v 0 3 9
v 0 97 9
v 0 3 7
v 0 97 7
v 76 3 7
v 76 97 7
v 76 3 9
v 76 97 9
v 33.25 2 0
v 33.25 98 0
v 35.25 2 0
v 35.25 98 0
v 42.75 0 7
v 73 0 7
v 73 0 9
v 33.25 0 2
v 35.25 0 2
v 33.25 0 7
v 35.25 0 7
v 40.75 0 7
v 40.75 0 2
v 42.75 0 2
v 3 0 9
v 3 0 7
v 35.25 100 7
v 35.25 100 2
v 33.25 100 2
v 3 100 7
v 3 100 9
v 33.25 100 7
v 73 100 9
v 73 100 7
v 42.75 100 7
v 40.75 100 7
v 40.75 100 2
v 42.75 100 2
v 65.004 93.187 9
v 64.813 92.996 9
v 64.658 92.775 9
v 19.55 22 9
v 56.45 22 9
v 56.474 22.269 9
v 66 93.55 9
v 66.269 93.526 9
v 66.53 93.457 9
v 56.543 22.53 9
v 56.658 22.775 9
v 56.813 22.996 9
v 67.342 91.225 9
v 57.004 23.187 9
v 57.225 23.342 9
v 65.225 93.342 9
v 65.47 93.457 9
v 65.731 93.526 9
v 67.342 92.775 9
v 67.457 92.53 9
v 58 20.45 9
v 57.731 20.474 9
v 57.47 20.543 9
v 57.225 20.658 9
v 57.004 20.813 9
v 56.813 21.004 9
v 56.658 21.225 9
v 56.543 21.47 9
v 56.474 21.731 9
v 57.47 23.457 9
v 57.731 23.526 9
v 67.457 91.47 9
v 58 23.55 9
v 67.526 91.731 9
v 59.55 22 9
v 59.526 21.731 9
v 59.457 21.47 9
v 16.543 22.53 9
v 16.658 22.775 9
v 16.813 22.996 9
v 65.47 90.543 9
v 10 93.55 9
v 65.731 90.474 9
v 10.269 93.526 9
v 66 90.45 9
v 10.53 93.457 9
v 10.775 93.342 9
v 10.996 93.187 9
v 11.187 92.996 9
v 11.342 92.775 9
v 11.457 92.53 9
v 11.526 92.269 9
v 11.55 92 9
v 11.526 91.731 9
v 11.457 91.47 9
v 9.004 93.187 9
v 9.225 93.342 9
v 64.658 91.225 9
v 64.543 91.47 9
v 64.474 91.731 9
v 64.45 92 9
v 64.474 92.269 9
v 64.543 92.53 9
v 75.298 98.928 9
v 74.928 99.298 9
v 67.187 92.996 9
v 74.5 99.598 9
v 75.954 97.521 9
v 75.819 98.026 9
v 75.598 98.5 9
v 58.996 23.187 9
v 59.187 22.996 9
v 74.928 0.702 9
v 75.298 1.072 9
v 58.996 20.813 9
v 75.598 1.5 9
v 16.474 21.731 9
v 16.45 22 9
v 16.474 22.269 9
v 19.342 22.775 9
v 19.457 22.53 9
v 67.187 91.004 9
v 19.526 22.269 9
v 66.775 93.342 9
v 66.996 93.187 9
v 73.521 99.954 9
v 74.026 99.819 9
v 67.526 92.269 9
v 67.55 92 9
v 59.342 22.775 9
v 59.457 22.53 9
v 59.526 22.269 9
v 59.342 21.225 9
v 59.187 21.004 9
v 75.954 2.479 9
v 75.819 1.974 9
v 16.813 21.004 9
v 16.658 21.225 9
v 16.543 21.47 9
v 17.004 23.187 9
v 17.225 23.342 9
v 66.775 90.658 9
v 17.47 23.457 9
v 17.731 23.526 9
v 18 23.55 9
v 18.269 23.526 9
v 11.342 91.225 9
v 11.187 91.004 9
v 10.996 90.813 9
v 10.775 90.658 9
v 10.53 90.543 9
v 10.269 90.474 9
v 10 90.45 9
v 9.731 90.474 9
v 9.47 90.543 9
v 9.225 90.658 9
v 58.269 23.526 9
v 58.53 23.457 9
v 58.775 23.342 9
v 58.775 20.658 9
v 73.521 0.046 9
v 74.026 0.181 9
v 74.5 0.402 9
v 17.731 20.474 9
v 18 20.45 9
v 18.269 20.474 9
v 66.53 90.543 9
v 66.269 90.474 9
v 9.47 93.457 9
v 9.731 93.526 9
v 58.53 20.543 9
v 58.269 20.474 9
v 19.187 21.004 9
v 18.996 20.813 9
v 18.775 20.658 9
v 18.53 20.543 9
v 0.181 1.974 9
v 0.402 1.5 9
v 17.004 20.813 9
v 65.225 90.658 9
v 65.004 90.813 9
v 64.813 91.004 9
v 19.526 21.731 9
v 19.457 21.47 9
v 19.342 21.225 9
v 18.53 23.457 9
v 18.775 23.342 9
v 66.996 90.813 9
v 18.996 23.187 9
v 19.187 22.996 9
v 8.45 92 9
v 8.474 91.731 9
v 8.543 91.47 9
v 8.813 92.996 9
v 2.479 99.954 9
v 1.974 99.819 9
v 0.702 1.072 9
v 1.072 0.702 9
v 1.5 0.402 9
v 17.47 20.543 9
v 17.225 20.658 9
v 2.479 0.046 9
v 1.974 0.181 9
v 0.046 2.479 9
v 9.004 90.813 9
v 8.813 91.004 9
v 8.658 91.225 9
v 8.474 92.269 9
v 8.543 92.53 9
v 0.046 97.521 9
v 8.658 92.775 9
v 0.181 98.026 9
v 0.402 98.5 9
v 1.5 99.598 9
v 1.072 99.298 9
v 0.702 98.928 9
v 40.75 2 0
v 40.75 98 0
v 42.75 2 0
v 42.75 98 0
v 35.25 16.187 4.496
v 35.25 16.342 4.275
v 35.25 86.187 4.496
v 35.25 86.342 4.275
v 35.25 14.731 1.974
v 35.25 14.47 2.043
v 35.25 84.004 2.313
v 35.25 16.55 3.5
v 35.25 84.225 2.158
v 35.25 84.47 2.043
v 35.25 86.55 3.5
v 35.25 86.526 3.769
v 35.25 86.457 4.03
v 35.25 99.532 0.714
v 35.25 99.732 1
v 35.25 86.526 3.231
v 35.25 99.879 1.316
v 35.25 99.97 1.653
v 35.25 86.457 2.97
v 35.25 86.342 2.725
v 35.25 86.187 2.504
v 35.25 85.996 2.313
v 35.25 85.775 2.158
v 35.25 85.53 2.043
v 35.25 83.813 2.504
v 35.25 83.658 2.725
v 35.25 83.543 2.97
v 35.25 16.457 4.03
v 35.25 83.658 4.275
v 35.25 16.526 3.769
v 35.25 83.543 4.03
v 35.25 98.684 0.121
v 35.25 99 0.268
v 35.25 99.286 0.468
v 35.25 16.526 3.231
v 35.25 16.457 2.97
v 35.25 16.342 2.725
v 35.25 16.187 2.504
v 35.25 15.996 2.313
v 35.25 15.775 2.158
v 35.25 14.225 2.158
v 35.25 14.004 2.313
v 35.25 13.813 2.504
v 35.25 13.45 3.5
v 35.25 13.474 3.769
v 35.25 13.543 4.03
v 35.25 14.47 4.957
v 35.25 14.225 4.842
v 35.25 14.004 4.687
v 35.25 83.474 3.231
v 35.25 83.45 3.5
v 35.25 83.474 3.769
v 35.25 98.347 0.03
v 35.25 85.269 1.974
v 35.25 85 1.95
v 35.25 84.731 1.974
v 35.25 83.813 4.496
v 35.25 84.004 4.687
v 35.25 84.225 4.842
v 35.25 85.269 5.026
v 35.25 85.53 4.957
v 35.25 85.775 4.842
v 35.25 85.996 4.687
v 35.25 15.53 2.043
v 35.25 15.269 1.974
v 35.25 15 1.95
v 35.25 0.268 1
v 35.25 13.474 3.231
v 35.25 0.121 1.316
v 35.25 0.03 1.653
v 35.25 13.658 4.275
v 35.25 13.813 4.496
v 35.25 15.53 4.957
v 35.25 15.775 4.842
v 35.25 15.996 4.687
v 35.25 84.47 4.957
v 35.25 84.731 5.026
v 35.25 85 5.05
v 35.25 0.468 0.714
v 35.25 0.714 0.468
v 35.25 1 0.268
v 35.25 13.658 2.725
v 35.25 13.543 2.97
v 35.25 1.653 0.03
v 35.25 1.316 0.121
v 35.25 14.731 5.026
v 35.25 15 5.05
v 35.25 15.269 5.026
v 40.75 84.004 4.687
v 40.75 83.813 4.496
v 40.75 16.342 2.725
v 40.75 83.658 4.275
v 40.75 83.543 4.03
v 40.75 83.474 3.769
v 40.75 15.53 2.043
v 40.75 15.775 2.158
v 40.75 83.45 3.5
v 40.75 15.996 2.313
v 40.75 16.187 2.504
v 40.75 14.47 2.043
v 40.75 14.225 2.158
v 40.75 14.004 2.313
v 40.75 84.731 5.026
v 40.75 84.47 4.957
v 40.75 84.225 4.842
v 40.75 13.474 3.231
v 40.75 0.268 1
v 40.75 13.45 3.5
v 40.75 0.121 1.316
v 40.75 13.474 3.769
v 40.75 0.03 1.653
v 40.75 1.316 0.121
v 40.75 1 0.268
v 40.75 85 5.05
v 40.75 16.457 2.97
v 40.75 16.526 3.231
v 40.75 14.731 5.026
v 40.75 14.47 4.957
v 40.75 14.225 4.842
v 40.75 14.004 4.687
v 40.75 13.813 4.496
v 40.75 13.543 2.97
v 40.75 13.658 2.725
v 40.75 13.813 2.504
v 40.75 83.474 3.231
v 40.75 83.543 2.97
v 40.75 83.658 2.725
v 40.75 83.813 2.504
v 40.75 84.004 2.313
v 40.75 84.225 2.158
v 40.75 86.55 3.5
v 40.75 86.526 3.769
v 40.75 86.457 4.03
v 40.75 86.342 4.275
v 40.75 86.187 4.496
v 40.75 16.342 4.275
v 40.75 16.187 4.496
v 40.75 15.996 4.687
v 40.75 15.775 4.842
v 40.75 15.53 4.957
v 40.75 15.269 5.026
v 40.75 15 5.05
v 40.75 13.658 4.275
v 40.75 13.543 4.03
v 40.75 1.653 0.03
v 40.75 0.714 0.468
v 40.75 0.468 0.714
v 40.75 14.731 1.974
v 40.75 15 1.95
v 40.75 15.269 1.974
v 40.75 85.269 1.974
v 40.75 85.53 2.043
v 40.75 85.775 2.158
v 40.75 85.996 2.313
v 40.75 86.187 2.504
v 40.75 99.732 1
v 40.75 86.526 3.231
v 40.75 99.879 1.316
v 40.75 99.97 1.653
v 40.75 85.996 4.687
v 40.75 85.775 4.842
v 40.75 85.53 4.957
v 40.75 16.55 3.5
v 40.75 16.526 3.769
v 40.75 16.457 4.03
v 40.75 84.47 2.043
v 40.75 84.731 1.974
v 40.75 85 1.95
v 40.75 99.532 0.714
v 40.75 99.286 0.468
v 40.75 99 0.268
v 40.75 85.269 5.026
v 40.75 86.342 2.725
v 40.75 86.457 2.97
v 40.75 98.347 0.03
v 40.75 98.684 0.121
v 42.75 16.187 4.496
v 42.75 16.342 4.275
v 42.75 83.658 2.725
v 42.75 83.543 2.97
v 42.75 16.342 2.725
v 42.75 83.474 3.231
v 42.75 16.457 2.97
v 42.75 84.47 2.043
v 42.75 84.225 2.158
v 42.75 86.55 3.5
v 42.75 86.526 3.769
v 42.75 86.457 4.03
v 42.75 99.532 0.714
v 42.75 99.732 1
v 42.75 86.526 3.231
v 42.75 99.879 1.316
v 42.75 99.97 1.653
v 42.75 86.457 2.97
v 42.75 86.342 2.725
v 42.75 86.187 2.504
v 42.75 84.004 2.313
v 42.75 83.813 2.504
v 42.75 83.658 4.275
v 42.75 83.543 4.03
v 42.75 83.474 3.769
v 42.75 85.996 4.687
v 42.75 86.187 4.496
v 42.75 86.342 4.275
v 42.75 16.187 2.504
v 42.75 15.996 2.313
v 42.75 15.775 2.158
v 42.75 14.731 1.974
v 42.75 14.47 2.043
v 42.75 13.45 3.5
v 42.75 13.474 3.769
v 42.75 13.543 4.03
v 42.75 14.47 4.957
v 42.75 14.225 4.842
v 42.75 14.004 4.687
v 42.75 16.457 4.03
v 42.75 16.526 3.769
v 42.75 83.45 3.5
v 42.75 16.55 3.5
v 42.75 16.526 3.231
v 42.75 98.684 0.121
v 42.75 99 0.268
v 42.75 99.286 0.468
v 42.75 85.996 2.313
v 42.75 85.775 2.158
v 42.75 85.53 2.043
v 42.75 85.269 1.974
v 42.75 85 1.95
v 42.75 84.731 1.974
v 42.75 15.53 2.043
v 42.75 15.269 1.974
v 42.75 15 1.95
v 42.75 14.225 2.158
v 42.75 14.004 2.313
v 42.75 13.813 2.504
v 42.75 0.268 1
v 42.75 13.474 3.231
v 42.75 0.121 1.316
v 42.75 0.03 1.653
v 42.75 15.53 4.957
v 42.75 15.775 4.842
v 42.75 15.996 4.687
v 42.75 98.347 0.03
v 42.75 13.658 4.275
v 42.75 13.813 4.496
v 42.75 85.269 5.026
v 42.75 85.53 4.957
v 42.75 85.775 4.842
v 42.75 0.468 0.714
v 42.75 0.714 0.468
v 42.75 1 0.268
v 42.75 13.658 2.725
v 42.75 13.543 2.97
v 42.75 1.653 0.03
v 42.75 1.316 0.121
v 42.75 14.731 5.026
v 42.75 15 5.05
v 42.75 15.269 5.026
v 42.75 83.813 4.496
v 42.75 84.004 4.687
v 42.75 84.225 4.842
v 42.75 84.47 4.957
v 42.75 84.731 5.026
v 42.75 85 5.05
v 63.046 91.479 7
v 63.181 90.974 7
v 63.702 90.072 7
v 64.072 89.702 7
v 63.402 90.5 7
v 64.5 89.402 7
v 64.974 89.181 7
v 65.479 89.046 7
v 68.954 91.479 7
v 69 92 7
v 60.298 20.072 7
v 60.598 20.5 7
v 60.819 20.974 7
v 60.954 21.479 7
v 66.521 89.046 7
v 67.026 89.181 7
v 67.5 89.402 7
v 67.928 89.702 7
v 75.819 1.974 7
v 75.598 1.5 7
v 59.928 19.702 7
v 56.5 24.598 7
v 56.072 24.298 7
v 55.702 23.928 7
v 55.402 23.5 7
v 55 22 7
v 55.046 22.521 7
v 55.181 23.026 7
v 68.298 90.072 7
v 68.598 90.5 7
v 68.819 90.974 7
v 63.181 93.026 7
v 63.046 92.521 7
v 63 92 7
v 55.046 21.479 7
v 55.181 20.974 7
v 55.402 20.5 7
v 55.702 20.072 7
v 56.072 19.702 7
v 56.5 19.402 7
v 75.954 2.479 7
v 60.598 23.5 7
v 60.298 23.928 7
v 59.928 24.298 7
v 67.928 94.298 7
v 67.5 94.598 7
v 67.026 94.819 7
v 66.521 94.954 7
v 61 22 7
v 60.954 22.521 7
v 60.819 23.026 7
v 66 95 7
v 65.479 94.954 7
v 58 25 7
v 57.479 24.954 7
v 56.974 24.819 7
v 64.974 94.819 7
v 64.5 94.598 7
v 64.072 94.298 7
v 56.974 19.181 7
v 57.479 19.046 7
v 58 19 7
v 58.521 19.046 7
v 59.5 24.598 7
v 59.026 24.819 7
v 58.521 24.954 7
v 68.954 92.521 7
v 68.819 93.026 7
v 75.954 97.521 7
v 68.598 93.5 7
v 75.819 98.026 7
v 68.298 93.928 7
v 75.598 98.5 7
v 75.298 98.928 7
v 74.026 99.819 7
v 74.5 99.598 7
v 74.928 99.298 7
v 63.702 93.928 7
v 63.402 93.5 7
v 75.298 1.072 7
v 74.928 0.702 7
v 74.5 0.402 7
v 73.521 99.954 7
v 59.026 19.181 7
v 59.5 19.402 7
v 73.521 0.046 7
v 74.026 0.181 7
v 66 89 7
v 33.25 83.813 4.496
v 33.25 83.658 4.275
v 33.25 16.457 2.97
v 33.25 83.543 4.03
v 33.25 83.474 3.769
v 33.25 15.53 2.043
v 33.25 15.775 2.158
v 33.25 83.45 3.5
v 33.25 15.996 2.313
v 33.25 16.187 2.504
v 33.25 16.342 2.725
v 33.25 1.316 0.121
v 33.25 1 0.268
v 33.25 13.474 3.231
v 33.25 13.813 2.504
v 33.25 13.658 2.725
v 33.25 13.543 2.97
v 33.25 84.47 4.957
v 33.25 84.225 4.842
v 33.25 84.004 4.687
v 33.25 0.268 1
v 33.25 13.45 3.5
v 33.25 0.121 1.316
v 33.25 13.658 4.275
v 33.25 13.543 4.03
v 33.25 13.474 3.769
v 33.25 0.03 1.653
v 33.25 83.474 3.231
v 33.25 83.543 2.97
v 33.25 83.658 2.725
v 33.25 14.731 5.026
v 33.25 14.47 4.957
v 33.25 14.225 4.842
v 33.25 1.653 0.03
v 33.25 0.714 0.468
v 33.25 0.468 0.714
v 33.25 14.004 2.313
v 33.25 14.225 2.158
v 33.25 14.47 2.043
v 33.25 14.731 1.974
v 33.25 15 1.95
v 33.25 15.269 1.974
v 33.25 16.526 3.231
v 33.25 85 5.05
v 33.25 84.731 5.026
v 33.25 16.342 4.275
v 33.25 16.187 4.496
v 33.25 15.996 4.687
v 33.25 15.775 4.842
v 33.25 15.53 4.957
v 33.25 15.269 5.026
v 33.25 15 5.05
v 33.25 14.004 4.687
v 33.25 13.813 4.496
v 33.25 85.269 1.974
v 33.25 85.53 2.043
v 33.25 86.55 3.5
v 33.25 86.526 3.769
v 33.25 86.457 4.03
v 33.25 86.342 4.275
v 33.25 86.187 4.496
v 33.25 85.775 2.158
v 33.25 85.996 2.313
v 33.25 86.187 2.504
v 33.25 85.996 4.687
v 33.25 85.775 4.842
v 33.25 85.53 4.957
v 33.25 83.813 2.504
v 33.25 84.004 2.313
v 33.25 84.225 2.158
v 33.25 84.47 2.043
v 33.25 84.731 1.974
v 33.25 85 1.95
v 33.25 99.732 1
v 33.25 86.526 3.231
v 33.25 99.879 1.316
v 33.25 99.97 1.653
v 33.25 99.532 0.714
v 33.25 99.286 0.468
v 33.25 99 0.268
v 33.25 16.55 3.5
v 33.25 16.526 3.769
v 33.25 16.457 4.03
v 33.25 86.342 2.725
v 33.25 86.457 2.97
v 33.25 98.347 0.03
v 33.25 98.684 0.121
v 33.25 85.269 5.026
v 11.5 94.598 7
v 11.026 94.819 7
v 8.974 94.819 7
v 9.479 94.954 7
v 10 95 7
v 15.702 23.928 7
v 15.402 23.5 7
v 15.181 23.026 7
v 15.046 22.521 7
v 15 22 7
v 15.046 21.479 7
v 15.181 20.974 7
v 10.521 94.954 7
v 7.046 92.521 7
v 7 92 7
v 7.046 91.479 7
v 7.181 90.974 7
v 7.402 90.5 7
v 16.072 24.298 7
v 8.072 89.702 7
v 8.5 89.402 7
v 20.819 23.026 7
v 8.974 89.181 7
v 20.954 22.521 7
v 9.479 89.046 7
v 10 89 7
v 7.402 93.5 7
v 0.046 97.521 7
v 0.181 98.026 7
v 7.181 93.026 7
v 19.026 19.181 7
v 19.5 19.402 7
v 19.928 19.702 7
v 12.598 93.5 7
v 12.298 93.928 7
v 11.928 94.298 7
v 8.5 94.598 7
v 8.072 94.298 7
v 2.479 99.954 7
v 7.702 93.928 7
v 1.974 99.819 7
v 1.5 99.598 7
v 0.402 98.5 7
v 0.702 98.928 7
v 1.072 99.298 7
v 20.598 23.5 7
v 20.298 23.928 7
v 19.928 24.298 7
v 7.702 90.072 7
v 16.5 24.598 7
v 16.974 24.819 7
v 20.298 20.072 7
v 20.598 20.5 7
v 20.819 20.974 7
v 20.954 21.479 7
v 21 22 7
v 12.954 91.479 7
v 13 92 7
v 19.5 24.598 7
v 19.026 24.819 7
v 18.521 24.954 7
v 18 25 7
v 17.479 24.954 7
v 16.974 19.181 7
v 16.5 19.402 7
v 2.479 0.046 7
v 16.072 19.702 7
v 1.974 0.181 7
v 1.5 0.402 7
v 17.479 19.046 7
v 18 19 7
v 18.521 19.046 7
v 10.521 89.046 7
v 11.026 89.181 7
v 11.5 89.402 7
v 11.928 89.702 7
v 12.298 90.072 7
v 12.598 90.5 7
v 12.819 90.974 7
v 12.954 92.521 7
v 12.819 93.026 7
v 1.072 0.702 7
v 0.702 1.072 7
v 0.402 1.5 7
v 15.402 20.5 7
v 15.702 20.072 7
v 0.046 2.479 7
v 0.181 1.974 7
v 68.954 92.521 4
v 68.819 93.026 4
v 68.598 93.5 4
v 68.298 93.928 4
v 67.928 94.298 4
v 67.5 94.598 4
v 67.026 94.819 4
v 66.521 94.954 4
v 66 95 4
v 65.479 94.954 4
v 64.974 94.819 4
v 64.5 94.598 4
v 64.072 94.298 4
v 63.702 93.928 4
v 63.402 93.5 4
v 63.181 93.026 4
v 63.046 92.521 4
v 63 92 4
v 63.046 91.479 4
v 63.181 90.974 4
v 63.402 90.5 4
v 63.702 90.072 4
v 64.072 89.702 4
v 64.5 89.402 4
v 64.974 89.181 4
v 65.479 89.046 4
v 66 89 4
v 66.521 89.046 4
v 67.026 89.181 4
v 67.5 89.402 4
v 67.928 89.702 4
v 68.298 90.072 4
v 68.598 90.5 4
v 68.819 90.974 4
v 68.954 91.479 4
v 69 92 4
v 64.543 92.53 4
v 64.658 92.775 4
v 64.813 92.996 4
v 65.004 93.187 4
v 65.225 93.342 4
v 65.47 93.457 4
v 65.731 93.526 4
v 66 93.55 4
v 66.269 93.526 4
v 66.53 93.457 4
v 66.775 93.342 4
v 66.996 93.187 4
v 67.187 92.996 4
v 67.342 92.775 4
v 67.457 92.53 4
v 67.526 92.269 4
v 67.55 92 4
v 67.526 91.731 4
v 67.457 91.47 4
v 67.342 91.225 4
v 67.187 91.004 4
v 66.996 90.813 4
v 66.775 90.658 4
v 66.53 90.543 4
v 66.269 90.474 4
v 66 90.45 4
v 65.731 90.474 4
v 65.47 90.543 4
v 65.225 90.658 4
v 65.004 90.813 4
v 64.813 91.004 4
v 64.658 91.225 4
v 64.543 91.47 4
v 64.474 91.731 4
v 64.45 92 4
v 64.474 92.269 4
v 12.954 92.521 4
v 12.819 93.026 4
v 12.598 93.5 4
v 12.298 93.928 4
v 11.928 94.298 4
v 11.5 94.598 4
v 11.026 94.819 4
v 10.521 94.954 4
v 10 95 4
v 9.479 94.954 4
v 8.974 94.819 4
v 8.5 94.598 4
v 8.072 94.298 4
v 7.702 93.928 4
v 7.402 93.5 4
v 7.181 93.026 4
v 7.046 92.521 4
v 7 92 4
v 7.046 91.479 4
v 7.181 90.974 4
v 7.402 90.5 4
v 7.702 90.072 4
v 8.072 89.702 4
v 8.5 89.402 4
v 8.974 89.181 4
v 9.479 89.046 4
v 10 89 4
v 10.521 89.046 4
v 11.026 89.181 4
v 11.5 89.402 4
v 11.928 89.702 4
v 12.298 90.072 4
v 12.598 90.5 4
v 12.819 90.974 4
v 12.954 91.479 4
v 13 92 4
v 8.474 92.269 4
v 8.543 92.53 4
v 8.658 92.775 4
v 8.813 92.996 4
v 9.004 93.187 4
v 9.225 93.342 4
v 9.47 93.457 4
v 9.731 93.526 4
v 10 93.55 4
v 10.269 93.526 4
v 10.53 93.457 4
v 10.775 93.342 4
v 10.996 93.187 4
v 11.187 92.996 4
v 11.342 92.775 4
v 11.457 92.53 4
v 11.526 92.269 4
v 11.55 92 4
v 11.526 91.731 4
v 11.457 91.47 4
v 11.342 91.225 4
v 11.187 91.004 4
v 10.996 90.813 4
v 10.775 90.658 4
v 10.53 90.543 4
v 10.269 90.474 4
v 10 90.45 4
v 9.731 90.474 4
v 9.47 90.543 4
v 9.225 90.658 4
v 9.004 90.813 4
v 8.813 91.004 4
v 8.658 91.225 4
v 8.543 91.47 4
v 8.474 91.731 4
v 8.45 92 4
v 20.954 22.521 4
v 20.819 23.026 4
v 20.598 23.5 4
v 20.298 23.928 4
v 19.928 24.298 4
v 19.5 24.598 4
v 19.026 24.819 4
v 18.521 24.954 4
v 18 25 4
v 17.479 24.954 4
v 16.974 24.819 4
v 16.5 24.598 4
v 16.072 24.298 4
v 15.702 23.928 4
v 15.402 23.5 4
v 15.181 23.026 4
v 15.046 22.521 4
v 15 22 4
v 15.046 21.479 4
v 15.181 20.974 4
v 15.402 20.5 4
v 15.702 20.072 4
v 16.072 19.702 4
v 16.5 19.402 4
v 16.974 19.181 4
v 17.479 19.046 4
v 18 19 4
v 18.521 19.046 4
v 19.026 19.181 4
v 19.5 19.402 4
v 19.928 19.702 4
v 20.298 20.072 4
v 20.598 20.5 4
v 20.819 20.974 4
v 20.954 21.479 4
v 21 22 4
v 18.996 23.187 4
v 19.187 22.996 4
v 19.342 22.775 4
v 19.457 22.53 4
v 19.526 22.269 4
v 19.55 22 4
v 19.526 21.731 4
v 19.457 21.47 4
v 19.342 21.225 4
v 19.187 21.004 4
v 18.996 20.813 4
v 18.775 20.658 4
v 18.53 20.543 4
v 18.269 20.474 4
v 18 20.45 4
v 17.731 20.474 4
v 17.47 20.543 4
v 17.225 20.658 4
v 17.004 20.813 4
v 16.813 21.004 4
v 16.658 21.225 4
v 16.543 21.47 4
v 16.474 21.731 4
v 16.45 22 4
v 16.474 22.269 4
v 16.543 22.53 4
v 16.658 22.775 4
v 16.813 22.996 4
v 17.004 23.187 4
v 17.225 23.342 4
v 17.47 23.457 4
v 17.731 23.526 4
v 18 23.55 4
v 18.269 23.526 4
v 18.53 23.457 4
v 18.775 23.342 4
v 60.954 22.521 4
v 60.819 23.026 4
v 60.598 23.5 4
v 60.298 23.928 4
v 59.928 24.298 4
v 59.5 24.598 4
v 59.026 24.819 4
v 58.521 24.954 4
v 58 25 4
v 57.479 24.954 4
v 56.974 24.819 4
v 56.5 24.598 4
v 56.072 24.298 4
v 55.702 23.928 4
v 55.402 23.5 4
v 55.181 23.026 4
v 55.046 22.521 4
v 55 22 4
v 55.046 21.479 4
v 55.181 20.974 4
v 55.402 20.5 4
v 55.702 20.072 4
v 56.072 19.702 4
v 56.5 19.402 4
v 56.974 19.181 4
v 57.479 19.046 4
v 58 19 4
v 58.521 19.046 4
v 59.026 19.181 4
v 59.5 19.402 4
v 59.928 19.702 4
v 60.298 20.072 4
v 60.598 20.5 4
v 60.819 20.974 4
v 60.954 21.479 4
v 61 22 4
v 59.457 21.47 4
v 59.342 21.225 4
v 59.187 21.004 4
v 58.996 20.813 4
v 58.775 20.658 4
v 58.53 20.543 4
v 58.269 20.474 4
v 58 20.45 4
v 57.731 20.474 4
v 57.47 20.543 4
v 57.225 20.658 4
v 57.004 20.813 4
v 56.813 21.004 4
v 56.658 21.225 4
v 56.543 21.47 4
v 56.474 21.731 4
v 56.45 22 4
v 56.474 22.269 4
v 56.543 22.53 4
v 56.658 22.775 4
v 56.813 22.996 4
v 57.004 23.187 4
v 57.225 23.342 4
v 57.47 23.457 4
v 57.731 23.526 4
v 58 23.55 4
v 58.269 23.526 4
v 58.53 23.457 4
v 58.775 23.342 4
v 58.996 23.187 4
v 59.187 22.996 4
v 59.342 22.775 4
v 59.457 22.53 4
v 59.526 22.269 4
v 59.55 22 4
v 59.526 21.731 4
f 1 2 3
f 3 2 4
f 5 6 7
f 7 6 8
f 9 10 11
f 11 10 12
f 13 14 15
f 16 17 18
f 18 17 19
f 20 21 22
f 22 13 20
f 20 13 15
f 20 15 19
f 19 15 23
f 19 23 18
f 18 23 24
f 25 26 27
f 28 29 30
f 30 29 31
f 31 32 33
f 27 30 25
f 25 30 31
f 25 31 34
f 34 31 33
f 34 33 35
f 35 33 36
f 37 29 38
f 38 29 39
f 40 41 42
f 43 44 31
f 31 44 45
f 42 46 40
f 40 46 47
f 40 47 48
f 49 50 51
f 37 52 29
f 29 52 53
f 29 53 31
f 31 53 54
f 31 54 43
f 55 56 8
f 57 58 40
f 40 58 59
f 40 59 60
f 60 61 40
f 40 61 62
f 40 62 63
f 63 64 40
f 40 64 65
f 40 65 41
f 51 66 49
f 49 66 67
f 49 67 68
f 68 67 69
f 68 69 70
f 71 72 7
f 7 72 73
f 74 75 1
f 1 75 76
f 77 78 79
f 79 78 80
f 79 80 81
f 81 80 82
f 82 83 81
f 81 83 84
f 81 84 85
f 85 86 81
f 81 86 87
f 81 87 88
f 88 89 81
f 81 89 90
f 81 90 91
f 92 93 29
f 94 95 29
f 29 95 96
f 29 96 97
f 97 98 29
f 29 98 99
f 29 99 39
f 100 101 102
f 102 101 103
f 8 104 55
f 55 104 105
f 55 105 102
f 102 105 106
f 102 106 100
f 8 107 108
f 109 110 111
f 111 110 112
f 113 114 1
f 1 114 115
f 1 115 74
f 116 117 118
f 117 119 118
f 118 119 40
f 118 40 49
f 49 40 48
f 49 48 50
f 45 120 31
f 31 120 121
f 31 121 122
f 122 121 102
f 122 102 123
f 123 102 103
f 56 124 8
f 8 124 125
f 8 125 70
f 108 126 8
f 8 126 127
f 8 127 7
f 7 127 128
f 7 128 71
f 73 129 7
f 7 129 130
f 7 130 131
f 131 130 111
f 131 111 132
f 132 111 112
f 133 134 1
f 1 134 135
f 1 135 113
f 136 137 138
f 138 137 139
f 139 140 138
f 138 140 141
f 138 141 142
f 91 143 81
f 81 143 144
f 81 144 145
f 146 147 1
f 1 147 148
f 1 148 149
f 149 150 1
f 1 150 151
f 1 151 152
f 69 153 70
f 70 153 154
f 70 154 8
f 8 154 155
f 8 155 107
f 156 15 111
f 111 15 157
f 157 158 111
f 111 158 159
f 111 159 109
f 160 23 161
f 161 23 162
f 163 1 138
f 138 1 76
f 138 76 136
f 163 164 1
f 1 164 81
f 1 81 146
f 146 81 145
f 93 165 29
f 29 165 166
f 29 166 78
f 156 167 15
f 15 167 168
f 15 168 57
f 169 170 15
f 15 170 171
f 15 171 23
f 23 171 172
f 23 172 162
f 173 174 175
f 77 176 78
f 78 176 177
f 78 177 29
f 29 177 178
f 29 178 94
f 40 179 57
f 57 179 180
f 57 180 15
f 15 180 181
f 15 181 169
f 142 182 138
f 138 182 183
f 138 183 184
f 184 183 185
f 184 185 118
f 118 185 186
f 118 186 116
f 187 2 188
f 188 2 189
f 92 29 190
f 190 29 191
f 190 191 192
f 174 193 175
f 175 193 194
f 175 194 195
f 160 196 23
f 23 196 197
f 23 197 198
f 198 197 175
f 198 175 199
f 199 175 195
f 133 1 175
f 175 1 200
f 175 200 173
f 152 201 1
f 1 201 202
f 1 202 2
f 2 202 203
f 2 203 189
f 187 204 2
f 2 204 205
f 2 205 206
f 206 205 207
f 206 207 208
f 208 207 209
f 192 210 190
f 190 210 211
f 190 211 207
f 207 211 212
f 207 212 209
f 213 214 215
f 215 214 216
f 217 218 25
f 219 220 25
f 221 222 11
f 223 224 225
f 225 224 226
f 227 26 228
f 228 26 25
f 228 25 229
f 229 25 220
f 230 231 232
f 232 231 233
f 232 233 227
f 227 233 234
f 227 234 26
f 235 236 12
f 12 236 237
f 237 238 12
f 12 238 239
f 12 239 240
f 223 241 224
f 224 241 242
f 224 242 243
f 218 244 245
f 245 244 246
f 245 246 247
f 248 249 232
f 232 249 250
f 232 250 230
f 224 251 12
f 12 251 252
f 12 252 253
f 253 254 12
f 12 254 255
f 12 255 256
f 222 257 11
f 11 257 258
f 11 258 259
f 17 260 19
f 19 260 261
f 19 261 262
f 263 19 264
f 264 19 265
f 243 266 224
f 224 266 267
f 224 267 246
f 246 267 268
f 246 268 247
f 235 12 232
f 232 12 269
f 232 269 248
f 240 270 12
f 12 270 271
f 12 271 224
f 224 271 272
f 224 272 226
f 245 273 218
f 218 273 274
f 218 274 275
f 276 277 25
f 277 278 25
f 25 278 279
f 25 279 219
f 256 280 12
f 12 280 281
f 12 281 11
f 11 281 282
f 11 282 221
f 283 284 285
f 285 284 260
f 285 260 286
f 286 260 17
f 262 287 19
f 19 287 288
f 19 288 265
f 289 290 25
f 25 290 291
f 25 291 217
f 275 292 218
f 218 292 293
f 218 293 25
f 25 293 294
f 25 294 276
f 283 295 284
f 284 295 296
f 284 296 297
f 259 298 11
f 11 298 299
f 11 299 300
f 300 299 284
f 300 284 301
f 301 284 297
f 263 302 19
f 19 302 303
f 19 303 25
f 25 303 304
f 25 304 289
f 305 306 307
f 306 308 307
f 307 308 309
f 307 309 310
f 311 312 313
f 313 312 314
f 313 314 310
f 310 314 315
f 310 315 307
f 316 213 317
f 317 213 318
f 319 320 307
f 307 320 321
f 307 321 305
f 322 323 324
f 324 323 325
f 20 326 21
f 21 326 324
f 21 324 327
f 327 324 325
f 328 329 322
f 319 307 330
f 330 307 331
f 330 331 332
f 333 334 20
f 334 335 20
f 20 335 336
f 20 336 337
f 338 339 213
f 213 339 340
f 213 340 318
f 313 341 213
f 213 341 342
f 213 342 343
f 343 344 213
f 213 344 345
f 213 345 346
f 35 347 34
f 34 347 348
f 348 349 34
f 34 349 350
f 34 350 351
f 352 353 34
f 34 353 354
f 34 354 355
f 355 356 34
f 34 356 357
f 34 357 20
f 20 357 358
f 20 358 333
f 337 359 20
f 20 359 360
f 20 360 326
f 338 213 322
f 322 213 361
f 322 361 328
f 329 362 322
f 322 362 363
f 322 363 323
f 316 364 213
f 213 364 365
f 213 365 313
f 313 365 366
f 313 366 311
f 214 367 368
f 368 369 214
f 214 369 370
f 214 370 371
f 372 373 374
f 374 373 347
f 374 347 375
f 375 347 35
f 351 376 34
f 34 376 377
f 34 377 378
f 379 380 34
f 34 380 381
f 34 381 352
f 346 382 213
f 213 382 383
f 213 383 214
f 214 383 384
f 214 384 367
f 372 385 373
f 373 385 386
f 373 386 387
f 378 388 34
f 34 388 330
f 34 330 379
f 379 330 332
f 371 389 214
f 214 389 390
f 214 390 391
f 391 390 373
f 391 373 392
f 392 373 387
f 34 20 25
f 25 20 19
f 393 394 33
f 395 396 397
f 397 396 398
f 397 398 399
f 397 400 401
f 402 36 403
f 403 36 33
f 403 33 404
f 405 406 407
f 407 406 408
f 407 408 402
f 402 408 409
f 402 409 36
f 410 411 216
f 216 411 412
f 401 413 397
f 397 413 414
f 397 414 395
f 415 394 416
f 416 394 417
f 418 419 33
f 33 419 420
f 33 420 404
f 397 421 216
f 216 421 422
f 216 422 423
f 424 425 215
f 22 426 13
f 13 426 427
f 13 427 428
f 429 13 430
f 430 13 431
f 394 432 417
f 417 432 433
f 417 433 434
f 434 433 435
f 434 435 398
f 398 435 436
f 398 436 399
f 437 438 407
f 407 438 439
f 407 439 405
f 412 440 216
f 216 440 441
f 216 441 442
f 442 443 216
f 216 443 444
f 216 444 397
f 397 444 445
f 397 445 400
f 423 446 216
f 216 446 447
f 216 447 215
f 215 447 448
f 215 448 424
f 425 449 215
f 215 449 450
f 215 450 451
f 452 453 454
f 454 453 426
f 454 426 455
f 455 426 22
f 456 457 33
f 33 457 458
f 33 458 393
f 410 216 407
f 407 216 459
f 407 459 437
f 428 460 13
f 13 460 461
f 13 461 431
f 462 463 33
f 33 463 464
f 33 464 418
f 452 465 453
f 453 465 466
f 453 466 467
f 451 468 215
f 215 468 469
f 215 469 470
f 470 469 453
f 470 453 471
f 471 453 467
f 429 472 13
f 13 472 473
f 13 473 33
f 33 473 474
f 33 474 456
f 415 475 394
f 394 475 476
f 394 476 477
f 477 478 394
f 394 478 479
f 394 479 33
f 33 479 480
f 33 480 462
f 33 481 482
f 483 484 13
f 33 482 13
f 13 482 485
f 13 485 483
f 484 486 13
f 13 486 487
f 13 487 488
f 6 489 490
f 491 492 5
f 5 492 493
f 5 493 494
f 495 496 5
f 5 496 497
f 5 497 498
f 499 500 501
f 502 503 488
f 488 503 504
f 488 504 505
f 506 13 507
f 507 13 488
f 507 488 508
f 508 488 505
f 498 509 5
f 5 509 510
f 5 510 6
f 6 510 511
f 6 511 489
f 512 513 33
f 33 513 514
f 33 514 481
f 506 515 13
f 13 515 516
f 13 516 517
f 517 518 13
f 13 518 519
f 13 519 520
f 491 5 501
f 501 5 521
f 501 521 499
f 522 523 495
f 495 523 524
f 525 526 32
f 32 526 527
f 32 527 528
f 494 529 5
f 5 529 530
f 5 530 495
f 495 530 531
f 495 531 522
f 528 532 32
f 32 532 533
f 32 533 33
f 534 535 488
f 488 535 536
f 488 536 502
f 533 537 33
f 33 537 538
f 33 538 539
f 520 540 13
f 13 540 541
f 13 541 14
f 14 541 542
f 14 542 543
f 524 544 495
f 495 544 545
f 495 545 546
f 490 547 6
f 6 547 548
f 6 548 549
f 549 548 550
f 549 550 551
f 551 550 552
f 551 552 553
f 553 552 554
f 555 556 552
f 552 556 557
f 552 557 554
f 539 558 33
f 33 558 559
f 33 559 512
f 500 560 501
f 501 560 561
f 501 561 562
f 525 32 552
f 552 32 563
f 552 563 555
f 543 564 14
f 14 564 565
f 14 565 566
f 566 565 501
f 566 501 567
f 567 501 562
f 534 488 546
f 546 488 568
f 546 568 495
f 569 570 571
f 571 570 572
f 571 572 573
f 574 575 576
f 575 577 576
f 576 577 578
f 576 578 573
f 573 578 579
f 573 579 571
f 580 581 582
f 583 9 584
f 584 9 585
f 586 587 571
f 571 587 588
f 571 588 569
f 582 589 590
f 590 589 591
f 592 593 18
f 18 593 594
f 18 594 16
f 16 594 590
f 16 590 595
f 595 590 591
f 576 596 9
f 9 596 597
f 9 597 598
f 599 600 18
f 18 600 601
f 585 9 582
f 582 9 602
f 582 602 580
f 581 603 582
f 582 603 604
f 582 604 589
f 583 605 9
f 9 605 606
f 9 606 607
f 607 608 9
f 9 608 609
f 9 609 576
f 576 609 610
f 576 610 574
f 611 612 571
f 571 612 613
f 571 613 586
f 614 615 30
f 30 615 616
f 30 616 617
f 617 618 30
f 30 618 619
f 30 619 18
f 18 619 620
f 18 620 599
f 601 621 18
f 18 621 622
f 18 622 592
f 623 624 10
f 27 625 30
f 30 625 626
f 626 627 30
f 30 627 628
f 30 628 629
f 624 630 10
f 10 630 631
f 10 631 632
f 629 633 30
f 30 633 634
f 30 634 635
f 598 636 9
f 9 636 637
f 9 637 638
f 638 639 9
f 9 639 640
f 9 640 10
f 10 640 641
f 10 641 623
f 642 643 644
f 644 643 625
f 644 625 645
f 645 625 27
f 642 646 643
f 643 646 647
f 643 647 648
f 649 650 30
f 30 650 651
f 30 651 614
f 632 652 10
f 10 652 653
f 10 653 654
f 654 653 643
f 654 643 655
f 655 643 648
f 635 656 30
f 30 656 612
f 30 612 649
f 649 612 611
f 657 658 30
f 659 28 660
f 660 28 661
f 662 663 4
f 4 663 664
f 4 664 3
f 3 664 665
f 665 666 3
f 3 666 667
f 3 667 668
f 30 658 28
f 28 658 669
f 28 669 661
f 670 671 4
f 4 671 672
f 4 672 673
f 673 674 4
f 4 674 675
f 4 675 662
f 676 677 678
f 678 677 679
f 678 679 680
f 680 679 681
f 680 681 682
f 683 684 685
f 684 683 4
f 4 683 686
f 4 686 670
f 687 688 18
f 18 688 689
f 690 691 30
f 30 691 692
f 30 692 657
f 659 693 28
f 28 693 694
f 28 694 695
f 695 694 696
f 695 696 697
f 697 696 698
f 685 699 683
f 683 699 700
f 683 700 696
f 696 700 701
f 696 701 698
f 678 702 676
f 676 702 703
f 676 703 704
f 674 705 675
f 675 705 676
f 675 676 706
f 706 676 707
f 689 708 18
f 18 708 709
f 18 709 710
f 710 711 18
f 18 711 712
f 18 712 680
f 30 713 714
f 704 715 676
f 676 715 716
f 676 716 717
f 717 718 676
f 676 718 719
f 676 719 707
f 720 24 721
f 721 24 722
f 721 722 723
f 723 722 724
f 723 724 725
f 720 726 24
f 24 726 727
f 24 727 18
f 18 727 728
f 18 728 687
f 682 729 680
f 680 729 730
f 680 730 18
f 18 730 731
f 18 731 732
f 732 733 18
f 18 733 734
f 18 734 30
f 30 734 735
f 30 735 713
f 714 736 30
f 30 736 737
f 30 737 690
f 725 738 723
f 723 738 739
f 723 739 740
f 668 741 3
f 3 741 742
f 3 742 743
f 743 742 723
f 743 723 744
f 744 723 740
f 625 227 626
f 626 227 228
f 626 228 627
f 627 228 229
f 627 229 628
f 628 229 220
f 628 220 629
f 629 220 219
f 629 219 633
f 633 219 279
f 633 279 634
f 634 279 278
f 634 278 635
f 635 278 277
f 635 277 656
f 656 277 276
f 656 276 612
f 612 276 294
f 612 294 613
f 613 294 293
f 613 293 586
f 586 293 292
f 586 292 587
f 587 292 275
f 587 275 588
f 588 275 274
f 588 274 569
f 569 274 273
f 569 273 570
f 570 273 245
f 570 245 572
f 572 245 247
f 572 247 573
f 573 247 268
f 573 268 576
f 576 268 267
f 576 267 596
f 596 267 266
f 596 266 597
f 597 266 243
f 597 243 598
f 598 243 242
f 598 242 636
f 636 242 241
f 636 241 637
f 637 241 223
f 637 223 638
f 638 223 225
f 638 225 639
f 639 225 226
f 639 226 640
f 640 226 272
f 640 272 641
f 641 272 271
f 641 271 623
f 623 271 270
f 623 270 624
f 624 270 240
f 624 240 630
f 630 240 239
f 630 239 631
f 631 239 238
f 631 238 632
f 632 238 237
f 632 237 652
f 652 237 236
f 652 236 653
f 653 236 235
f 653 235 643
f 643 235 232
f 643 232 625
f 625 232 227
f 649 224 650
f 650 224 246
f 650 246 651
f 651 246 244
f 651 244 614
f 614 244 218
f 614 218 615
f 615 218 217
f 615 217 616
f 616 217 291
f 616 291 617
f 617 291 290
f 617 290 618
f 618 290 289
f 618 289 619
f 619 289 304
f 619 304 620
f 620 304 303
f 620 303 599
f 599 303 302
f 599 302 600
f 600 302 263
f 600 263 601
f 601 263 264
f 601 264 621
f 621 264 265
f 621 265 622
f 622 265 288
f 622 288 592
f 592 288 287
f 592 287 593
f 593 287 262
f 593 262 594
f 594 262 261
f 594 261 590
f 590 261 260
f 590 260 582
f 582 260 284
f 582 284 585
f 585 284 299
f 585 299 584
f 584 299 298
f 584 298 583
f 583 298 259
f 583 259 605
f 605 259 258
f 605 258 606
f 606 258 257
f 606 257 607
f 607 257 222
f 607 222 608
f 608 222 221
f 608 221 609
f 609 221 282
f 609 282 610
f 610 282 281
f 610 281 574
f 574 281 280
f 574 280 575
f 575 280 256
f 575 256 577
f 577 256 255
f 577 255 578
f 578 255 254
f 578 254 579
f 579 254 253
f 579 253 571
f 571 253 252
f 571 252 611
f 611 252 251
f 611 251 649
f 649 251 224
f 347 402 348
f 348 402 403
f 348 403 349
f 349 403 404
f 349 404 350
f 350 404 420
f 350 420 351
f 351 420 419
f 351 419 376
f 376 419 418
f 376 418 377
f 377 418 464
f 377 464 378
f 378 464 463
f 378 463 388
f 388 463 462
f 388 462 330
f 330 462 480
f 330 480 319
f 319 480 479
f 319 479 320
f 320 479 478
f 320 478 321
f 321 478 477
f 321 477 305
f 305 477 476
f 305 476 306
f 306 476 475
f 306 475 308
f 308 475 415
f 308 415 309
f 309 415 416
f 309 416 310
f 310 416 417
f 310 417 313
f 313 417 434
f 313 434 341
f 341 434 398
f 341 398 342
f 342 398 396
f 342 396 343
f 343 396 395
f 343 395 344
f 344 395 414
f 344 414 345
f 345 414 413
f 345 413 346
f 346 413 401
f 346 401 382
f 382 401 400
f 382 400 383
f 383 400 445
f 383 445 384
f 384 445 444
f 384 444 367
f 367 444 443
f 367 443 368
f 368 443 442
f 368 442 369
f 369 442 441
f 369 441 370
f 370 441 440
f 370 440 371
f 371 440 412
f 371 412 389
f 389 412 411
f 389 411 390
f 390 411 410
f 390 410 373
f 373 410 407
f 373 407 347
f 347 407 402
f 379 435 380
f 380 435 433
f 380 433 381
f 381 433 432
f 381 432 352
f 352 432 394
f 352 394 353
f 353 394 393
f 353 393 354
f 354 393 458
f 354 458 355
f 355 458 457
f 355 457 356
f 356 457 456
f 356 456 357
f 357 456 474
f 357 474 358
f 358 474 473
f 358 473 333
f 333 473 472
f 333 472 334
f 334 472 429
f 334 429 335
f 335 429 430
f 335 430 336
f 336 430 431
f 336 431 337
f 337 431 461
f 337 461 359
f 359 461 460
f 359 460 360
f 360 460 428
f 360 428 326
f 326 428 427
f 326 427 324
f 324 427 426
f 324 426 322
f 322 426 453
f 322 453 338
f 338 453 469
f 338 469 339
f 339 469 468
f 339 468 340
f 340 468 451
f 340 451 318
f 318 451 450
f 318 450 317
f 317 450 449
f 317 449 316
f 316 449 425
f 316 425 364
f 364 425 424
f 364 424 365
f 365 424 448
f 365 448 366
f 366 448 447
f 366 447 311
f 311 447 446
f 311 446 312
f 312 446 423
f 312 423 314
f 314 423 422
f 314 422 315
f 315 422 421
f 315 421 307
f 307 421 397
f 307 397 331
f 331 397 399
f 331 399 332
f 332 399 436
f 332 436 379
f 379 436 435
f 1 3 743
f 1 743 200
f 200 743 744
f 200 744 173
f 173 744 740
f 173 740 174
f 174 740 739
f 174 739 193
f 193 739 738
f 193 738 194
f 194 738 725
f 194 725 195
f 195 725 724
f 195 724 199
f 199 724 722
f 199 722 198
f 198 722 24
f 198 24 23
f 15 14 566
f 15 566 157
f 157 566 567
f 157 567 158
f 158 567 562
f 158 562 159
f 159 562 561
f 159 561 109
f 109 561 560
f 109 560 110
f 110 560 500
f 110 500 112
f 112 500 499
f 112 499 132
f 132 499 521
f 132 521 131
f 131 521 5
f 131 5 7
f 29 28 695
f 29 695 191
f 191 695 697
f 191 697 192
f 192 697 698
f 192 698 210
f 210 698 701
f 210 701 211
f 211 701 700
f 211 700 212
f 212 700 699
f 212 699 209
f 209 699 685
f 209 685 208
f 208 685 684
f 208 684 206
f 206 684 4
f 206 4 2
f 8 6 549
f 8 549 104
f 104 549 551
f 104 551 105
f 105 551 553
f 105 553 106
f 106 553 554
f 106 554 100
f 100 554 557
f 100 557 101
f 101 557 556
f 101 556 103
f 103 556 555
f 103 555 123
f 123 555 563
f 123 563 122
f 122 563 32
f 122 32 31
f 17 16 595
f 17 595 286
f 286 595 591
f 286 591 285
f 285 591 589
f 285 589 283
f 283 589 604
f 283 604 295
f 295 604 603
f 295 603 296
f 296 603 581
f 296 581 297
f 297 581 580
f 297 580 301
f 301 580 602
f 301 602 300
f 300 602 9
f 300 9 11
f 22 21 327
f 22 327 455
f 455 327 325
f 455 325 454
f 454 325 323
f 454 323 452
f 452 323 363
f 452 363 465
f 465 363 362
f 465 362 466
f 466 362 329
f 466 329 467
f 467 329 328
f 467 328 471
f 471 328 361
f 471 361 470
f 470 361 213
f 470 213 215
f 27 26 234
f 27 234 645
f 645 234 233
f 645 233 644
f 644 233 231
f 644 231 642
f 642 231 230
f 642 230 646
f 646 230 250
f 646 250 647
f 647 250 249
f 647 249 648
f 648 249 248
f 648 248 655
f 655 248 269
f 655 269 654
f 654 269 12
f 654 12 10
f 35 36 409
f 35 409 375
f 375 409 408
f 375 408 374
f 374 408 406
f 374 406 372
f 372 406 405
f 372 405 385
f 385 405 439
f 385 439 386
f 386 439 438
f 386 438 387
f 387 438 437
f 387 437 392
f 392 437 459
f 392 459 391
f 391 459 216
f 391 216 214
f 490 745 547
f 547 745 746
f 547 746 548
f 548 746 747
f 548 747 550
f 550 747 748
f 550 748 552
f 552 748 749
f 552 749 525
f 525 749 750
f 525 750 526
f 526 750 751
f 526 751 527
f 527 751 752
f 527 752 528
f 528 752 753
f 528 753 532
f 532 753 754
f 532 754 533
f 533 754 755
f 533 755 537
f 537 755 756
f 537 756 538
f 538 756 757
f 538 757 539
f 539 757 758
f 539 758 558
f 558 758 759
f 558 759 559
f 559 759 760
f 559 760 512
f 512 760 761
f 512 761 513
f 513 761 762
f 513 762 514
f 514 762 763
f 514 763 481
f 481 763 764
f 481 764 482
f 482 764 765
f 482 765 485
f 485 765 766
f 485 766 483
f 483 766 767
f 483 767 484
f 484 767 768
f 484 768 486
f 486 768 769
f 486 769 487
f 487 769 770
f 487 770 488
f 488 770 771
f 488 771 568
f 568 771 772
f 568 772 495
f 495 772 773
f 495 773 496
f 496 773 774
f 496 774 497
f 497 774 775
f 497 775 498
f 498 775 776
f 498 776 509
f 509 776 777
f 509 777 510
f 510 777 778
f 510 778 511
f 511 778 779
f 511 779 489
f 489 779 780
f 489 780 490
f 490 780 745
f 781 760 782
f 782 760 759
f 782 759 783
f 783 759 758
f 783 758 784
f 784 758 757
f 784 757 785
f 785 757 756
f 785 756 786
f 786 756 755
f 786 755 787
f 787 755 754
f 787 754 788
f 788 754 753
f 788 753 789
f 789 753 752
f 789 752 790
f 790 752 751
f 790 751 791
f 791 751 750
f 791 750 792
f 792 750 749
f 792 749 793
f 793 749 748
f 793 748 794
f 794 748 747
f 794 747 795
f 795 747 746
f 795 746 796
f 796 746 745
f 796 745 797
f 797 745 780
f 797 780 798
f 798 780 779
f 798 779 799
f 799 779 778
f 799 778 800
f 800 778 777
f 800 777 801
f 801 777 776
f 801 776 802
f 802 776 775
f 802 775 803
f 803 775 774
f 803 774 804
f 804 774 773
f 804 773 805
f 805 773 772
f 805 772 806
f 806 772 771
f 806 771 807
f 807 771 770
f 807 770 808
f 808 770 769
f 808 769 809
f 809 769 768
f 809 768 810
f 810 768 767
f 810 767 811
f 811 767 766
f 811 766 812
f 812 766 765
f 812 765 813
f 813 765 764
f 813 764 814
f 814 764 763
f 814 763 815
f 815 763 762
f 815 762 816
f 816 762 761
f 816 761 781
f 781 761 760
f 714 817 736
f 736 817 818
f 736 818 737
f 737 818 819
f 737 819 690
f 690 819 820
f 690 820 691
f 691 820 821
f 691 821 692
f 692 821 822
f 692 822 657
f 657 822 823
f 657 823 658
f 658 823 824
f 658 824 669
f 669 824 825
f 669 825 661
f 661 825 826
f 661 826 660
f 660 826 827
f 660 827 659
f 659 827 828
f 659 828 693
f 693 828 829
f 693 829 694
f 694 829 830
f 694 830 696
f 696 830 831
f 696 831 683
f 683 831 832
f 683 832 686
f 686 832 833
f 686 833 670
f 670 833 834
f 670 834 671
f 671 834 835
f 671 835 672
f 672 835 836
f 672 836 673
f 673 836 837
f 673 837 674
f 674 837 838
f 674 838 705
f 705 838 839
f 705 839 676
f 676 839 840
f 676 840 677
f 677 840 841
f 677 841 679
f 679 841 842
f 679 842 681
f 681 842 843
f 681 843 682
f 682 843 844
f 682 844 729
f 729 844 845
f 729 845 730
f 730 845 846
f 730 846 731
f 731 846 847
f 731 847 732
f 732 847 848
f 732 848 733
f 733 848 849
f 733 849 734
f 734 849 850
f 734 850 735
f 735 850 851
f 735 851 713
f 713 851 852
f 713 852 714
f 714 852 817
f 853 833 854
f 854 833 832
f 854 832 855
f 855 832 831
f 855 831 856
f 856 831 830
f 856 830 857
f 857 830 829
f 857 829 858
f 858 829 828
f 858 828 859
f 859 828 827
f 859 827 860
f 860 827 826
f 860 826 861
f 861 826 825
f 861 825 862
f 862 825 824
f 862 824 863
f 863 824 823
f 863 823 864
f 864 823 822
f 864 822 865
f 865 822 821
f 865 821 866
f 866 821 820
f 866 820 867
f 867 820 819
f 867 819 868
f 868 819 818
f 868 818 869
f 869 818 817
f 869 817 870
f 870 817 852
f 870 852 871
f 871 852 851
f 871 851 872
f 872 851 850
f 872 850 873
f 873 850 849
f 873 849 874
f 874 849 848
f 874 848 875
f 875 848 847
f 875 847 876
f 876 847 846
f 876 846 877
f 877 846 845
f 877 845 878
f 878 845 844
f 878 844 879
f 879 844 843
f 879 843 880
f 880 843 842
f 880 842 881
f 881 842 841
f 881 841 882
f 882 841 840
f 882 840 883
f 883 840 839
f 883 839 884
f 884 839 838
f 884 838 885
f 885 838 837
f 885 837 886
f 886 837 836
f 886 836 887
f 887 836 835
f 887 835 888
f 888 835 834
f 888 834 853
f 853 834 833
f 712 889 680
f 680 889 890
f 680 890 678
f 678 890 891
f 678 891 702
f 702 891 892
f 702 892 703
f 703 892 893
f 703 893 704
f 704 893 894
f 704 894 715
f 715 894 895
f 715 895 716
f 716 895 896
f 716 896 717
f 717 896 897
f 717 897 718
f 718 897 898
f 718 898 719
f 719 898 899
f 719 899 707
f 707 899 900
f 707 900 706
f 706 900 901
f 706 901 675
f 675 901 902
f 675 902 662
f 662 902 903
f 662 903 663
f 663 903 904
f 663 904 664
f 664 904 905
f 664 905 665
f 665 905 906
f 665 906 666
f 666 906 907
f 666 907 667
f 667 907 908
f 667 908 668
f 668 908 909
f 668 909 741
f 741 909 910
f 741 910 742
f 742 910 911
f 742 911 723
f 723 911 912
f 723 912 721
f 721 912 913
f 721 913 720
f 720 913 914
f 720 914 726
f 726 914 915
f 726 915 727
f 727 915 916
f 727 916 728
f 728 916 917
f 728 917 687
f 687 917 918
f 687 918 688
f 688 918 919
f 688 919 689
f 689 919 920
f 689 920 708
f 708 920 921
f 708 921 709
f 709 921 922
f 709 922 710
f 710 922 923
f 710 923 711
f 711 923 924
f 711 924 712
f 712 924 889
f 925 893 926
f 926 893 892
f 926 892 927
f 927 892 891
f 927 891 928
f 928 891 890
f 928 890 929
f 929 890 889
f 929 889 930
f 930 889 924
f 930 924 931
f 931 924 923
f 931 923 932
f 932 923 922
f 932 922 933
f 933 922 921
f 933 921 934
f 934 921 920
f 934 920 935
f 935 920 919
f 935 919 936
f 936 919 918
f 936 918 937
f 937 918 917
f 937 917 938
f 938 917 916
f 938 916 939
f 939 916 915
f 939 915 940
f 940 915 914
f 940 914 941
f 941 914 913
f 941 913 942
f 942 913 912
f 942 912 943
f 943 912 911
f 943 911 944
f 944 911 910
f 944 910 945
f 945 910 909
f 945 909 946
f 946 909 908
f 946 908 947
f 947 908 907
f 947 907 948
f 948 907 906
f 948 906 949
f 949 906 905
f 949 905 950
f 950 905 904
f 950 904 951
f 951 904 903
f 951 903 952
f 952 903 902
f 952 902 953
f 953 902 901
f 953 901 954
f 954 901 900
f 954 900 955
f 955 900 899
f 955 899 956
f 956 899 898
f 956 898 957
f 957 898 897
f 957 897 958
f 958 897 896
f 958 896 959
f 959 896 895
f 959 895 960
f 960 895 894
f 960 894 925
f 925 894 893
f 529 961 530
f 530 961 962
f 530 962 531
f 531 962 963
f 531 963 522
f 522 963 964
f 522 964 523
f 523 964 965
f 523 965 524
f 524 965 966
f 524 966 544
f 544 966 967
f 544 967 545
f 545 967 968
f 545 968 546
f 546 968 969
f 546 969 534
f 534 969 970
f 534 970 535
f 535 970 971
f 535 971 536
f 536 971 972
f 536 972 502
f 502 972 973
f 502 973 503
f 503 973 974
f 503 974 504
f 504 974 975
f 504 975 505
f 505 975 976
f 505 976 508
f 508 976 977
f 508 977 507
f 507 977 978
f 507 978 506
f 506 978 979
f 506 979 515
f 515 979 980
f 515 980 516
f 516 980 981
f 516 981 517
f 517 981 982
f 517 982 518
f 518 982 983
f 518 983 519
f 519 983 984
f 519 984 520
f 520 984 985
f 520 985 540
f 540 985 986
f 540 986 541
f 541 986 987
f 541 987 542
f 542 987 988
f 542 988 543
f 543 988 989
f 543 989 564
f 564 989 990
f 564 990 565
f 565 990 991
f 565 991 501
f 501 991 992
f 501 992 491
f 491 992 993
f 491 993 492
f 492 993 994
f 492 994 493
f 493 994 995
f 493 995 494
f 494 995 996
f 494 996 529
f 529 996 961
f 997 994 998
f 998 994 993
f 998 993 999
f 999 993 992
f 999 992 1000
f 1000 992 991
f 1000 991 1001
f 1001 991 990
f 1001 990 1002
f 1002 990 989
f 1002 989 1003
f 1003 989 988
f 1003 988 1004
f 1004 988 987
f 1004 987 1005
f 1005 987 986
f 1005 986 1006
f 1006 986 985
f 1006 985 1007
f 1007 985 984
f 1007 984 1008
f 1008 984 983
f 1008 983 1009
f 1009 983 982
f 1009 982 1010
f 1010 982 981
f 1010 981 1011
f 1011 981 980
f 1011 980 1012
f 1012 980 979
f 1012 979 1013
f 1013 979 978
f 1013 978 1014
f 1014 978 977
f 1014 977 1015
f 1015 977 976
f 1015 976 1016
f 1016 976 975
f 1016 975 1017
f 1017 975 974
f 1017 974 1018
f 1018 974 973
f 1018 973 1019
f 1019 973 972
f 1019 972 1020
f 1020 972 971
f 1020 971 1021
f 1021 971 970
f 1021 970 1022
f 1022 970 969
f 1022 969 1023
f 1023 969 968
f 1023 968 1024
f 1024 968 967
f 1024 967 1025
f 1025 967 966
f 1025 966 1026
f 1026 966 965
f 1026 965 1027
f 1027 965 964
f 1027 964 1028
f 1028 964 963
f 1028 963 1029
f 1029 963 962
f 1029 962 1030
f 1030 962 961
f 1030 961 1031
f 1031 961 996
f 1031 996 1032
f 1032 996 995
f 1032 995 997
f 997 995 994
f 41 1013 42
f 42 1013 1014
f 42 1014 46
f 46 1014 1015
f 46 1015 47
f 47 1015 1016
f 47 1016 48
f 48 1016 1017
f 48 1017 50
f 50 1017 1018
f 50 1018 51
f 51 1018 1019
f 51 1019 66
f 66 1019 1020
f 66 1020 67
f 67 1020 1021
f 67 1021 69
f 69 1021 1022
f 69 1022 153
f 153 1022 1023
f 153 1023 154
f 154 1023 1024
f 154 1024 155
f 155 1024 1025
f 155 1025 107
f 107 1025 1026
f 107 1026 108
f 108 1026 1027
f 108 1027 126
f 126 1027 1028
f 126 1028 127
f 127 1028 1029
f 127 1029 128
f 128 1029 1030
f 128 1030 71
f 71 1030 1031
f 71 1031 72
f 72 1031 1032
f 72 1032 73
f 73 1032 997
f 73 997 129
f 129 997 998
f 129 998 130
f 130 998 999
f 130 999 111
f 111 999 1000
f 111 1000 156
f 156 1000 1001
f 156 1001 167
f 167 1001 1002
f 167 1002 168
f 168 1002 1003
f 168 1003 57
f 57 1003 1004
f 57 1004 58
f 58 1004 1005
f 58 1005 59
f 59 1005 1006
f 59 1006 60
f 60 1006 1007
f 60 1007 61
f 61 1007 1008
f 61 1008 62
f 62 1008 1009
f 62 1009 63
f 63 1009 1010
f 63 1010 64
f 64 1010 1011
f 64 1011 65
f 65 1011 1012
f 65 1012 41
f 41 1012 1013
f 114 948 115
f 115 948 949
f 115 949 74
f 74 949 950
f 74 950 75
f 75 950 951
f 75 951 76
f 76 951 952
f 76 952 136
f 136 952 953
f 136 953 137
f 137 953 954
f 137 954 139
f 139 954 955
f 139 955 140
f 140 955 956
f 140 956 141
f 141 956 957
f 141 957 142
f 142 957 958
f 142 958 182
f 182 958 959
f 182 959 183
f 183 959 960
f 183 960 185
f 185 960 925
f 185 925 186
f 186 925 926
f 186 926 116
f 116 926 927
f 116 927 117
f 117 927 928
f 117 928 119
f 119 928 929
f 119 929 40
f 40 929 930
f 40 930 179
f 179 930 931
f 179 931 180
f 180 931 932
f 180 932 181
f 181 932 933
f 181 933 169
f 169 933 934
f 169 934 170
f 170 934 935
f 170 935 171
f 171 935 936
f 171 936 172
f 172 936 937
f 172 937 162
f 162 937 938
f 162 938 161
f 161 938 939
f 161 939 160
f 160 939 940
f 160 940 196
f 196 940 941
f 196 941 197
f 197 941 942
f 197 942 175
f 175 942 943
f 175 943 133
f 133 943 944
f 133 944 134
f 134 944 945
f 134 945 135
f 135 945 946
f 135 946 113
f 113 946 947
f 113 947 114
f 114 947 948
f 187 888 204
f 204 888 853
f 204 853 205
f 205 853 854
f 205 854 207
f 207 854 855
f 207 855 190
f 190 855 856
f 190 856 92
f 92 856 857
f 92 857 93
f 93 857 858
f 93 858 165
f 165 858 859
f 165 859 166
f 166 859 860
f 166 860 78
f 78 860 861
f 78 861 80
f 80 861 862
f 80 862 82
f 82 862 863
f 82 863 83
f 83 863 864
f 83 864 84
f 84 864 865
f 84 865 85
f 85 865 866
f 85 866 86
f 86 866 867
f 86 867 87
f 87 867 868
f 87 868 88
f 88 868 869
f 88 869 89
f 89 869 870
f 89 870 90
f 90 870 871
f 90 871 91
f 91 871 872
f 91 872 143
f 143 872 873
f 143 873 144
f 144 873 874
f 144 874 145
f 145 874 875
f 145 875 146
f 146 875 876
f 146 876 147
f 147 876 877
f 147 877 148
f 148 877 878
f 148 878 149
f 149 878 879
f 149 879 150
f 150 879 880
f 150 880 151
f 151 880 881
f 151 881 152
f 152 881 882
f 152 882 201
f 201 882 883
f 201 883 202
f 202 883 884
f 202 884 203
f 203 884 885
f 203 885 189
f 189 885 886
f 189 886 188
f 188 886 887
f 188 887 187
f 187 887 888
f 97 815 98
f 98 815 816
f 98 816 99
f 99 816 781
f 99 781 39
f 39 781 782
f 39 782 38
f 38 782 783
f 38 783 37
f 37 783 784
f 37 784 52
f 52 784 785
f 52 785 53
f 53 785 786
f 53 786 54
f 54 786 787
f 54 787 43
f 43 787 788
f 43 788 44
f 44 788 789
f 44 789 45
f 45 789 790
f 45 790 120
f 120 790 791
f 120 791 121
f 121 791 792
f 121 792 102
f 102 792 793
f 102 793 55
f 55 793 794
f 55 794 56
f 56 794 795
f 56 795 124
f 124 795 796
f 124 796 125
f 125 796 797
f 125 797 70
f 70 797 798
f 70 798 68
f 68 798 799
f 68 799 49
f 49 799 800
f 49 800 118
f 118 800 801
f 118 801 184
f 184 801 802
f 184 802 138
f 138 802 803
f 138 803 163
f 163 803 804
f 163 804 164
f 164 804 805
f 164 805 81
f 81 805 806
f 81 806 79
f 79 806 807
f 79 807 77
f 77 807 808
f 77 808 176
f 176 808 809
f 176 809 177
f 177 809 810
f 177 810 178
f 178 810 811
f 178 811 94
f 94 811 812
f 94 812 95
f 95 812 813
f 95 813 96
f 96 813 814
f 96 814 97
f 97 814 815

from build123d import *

# Parameters (mm, degrees)
ESQUISSE1_W                  = 76
ESQUISSE1_H                  = 100
BOSS_EXTRU_1_DEPTH           = 9
ESQUISSE2_W                  = 33.25
ESQUISSE2_H                  = 100
ESQUISSE2_W_2                = 5.5
ENL_V_MAT_EXTRU_1_DEPTH      = 7
ESQUISSE3_R                  = 1.55
ENL_V_MAT_EXTRU_2_DEPTH      = 43.75
CONG_1_R                     = 3
CONG_2_R                     = 2
ESQUISSE9_R                  = 3
BOSS_EXTRU_2_DEPTH           = 3
ESQUISSE5_R                  = 1.55
ENL_V_MAT_EXTRU_4_DEPTH      = 8
ENL_V_MAT_EXTRU_4_DEPTH_BACK = 3


with BuildPart() as part:
    # Esquisse1 → Boss.-Extru.1 (new body)
    with BuildSketch(Plane.XY):
        with Locations((38, 50)):
            Rectangle(ESQUISSE1_W, ESQUISSE1_H)
    extrude(amount=BOSS_EXTRU_1_DEPTH)

    # Esquisse2 → Enlèv. mat.-Extru.1 (cut)
    with BuildSketch(Plane(origin=(0, 0, 0), x_dir=(-1, 0, 0), z_dir=(0, 0, -1))):
        with Locations((-16.625, 50)):
            Rectangle(ESQUISSE2_W, ESQUISSE2_H)
        with Locations((-59.375, 50)):
            Rectangle(ESQUISSE2_W, ESQUISSE2_H)
        with Locations((-38, 50)):
            Rectangle(ESQUISSE2_W_2, ESQUISSE2_H)
    extrude(amount=-ENL_V_MAT_EXTRU_1_DEPTH, mode=Mode.SUBTRACT)

    # Esquisse3 → Enlèv. mat.-Extru.2 (cut, through all)
    with BuildSketch(Plane(origin=(42.75, 0, 0), x_dir=(0, 0, -1), z_dir=(1, 0, 0))):
        with Locations((-3.5, 15)):
            Circle(ESQUISSE3_R)
        with Locations((-3.5, 85)):
            Circle(ESQUISSE3_R)
    extrude(amount=-ENL_V_MAT_EXTRU_2_DEPTH, mode=Mode.SUBTRACT)

    # Congé1
    cong_1_edges = [part.edges().sort_by_distance(p)[0] for p in [
        (0, 100, 8),
        (76, 100, 8),
        (76, 0, 8),
        (0, 0, 8),
    ]]
    fillet(cong_1_edges, radius=CONG_1_R)

    # Congé2
    cong_2_edges = [part.edges().sort_by_distance(p)[0] for p in [
        (41.75, 100, 0),
        (34.25, 100, 0),
        (34.25, 0, 0),
        (41.75, 0, 0),
    ]]
    fillet(cong_2_edges, radius=CONG_2_R)

    # Esquisse9 → Boss.-Extru.2 (add)
    with BuildSketch(Plane(origin=(0, 0, 7), x_dir=(-1, 0, 0), z_dir=(0, 0, -1))):
        with Locations((-66, 92)):
            Circle(ESQUISSE9_R)
        with Locations((-10, 92)):
            Circle(ESQUISSE9_R)
        with Locations((-18, 22)):
            Circle(ESQUISSE9_R)
        with Locations((-58, 22)):
            Circle(ESQUISSE9_R)
    extrude(amount=BOSS_EXTRU_2_DEPTH)

    # Esquisse5 → Enlèv. mat.-Extru.4 (cut, two sides)
    with BuildSketch(Plane(origin=(0, 0, 7), x_dir=(-1, 0, 0), z_dir=(0, 0, -1))) as enl_v_mat_extru_4_sk:
        with Locations((-66, 92)):
            Circle(ESQUISSE5_R)
        with Locations((-58, 22)):
            Circle(ESQUISSE5_R)
        with Locations((-18, 22)):
            Circle(ESQUISSE5_R)
        with Locations((-10, 92)):
            Circle(ESQUISSE5_R)
    extrude(amount=ENL_V_MAT_EXTRU_4_DEPTH, mode=Mode.SUBTRACT)
    extrude(enl_v_mat_extru_4_sk.sketch, amount=-ENL_V_MAT_EXTRU_4_DEPTH_BACK, mode=Mode.SUBTRACT)


solid = part.part
